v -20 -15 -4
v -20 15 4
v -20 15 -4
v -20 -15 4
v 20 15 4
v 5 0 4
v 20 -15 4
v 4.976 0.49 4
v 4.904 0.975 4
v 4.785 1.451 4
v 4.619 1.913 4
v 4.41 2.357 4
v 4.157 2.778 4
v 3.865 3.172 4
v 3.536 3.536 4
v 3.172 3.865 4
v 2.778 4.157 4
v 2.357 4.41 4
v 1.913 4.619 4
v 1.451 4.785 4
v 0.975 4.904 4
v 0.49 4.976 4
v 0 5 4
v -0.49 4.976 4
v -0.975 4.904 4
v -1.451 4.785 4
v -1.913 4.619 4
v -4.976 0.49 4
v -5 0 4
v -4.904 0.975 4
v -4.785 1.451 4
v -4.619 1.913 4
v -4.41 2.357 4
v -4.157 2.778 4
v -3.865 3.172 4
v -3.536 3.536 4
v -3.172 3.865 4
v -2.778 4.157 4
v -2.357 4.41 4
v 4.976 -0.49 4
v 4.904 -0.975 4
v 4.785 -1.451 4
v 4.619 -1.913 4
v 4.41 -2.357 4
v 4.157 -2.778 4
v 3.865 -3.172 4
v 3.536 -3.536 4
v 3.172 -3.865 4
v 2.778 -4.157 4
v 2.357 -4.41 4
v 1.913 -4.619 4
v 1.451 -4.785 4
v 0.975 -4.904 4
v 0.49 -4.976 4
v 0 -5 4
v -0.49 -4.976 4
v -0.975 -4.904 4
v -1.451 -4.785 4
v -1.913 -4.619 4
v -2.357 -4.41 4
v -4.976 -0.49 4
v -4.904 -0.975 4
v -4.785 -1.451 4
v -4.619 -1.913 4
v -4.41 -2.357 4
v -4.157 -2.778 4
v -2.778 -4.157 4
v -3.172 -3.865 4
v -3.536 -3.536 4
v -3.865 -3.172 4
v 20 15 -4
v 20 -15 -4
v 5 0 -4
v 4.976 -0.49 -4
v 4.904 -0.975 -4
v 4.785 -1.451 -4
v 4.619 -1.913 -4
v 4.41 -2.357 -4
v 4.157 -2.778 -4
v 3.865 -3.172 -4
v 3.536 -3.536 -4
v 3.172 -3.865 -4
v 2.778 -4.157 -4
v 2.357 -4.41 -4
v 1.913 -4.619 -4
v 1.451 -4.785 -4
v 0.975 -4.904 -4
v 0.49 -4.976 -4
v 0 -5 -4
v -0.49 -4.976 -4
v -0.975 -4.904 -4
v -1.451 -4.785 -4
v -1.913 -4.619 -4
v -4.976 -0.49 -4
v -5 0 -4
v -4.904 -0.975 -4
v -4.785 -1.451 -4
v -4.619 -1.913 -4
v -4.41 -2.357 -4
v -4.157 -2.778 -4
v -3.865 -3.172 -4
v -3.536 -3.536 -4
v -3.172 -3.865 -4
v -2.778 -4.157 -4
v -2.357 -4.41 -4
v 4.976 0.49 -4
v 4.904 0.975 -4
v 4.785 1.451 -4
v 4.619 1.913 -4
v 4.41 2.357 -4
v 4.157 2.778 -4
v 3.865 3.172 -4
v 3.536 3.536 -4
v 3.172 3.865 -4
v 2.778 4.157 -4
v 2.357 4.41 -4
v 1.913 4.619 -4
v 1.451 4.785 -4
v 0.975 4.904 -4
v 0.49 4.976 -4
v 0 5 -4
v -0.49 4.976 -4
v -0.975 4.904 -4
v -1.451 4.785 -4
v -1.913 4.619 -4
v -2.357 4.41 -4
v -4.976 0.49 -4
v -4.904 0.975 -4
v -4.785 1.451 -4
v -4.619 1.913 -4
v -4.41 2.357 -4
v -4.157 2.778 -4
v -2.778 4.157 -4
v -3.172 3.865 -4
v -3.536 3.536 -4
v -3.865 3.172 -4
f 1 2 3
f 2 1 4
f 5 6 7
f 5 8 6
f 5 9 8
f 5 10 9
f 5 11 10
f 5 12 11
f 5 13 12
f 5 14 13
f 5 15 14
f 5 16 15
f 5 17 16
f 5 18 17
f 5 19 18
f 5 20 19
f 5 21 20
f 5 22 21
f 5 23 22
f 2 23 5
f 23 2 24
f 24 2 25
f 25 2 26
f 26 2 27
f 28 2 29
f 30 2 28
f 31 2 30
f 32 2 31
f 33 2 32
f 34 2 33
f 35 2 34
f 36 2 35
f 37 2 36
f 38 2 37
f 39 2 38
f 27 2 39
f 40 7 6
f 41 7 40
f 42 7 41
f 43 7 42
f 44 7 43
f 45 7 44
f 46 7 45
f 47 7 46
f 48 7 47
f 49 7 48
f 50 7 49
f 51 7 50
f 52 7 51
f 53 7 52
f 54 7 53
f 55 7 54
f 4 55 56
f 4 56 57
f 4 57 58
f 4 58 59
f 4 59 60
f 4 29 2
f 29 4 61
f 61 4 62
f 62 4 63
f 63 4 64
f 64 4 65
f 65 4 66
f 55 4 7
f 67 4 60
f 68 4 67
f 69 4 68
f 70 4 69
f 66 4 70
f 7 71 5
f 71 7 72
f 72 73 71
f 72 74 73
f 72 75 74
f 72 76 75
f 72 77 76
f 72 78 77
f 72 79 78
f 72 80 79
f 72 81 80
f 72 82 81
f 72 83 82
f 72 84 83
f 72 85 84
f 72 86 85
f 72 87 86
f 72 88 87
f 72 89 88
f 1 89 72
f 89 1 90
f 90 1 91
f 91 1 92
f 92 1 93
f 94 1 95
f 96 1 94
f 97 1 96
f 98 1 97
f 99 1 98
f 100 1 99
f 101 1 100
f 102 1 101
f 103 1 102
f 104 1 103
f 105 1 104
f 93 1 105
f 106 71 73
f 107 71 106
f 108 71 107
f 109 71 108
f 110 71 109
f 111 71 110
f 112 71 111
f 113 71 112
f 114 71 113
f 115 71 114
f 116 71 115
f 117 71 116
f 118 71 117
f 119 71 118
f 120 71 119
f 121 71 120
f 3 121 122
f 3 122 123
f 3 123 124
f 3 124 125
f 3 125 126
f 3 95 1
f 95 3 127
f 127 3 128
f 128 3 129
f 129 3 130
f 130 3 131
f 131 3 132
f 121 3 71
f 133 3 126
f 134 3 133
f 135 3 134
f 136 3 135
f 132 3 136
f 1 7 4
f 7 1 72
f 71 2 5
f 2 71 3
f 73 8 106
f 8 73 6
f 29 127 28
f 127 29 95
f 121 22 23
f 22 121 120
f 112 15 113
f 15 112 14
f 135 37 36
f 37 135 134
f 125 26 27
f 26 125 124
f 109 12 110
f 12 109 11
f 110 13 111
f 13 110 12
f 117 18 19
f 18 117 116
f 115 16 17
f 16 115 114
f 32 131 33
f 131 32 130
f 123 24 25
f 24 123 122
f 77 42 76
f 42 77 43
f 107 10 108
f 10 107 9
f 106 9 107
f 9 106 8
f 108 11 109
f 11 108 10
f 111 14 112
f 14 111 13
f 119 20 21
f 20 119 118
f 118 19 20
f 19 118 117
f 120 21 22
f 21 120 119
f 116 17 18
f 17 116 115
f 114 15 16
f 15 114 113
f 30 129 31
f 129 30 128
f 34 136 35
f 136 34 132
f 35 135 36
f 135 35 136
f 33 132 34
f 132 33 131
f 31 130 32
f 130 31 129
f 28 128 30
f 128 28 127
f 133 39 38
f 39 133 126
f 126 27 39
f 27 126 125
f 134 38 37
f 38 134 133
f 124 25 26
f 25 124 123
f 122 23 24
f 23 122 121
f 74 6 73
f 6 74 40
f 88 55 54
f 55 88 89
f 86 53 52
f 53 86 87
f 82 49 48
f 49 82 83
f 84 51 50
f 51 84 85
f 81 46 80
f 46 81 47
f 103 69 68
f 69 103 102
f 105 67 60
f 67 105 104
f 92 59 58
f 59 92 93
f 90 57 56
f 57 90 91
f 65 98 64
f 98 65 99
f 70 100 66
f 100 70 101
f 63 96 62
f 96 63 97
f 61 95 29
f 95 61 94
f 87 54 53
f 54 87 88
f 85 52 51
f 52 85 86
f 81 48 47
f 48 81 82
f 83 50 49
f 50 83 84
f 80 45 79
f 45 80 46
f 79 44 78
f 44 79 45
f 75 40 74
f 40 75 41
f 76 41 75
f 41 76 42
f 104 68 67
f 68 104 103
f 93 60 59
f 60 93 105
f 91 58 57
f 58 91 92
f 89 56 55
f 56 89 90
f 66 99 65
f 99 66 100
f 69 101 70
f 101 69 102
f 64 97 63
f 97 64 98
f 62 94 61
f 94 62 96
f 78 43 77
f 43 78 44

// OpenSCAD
difference() {
    // Main plate
    cube([40, 30, 8], center=true);
    
    // Cylindrical hole along Z
    cylinder(h=10, d=10, center=true, $fn=64);
}
